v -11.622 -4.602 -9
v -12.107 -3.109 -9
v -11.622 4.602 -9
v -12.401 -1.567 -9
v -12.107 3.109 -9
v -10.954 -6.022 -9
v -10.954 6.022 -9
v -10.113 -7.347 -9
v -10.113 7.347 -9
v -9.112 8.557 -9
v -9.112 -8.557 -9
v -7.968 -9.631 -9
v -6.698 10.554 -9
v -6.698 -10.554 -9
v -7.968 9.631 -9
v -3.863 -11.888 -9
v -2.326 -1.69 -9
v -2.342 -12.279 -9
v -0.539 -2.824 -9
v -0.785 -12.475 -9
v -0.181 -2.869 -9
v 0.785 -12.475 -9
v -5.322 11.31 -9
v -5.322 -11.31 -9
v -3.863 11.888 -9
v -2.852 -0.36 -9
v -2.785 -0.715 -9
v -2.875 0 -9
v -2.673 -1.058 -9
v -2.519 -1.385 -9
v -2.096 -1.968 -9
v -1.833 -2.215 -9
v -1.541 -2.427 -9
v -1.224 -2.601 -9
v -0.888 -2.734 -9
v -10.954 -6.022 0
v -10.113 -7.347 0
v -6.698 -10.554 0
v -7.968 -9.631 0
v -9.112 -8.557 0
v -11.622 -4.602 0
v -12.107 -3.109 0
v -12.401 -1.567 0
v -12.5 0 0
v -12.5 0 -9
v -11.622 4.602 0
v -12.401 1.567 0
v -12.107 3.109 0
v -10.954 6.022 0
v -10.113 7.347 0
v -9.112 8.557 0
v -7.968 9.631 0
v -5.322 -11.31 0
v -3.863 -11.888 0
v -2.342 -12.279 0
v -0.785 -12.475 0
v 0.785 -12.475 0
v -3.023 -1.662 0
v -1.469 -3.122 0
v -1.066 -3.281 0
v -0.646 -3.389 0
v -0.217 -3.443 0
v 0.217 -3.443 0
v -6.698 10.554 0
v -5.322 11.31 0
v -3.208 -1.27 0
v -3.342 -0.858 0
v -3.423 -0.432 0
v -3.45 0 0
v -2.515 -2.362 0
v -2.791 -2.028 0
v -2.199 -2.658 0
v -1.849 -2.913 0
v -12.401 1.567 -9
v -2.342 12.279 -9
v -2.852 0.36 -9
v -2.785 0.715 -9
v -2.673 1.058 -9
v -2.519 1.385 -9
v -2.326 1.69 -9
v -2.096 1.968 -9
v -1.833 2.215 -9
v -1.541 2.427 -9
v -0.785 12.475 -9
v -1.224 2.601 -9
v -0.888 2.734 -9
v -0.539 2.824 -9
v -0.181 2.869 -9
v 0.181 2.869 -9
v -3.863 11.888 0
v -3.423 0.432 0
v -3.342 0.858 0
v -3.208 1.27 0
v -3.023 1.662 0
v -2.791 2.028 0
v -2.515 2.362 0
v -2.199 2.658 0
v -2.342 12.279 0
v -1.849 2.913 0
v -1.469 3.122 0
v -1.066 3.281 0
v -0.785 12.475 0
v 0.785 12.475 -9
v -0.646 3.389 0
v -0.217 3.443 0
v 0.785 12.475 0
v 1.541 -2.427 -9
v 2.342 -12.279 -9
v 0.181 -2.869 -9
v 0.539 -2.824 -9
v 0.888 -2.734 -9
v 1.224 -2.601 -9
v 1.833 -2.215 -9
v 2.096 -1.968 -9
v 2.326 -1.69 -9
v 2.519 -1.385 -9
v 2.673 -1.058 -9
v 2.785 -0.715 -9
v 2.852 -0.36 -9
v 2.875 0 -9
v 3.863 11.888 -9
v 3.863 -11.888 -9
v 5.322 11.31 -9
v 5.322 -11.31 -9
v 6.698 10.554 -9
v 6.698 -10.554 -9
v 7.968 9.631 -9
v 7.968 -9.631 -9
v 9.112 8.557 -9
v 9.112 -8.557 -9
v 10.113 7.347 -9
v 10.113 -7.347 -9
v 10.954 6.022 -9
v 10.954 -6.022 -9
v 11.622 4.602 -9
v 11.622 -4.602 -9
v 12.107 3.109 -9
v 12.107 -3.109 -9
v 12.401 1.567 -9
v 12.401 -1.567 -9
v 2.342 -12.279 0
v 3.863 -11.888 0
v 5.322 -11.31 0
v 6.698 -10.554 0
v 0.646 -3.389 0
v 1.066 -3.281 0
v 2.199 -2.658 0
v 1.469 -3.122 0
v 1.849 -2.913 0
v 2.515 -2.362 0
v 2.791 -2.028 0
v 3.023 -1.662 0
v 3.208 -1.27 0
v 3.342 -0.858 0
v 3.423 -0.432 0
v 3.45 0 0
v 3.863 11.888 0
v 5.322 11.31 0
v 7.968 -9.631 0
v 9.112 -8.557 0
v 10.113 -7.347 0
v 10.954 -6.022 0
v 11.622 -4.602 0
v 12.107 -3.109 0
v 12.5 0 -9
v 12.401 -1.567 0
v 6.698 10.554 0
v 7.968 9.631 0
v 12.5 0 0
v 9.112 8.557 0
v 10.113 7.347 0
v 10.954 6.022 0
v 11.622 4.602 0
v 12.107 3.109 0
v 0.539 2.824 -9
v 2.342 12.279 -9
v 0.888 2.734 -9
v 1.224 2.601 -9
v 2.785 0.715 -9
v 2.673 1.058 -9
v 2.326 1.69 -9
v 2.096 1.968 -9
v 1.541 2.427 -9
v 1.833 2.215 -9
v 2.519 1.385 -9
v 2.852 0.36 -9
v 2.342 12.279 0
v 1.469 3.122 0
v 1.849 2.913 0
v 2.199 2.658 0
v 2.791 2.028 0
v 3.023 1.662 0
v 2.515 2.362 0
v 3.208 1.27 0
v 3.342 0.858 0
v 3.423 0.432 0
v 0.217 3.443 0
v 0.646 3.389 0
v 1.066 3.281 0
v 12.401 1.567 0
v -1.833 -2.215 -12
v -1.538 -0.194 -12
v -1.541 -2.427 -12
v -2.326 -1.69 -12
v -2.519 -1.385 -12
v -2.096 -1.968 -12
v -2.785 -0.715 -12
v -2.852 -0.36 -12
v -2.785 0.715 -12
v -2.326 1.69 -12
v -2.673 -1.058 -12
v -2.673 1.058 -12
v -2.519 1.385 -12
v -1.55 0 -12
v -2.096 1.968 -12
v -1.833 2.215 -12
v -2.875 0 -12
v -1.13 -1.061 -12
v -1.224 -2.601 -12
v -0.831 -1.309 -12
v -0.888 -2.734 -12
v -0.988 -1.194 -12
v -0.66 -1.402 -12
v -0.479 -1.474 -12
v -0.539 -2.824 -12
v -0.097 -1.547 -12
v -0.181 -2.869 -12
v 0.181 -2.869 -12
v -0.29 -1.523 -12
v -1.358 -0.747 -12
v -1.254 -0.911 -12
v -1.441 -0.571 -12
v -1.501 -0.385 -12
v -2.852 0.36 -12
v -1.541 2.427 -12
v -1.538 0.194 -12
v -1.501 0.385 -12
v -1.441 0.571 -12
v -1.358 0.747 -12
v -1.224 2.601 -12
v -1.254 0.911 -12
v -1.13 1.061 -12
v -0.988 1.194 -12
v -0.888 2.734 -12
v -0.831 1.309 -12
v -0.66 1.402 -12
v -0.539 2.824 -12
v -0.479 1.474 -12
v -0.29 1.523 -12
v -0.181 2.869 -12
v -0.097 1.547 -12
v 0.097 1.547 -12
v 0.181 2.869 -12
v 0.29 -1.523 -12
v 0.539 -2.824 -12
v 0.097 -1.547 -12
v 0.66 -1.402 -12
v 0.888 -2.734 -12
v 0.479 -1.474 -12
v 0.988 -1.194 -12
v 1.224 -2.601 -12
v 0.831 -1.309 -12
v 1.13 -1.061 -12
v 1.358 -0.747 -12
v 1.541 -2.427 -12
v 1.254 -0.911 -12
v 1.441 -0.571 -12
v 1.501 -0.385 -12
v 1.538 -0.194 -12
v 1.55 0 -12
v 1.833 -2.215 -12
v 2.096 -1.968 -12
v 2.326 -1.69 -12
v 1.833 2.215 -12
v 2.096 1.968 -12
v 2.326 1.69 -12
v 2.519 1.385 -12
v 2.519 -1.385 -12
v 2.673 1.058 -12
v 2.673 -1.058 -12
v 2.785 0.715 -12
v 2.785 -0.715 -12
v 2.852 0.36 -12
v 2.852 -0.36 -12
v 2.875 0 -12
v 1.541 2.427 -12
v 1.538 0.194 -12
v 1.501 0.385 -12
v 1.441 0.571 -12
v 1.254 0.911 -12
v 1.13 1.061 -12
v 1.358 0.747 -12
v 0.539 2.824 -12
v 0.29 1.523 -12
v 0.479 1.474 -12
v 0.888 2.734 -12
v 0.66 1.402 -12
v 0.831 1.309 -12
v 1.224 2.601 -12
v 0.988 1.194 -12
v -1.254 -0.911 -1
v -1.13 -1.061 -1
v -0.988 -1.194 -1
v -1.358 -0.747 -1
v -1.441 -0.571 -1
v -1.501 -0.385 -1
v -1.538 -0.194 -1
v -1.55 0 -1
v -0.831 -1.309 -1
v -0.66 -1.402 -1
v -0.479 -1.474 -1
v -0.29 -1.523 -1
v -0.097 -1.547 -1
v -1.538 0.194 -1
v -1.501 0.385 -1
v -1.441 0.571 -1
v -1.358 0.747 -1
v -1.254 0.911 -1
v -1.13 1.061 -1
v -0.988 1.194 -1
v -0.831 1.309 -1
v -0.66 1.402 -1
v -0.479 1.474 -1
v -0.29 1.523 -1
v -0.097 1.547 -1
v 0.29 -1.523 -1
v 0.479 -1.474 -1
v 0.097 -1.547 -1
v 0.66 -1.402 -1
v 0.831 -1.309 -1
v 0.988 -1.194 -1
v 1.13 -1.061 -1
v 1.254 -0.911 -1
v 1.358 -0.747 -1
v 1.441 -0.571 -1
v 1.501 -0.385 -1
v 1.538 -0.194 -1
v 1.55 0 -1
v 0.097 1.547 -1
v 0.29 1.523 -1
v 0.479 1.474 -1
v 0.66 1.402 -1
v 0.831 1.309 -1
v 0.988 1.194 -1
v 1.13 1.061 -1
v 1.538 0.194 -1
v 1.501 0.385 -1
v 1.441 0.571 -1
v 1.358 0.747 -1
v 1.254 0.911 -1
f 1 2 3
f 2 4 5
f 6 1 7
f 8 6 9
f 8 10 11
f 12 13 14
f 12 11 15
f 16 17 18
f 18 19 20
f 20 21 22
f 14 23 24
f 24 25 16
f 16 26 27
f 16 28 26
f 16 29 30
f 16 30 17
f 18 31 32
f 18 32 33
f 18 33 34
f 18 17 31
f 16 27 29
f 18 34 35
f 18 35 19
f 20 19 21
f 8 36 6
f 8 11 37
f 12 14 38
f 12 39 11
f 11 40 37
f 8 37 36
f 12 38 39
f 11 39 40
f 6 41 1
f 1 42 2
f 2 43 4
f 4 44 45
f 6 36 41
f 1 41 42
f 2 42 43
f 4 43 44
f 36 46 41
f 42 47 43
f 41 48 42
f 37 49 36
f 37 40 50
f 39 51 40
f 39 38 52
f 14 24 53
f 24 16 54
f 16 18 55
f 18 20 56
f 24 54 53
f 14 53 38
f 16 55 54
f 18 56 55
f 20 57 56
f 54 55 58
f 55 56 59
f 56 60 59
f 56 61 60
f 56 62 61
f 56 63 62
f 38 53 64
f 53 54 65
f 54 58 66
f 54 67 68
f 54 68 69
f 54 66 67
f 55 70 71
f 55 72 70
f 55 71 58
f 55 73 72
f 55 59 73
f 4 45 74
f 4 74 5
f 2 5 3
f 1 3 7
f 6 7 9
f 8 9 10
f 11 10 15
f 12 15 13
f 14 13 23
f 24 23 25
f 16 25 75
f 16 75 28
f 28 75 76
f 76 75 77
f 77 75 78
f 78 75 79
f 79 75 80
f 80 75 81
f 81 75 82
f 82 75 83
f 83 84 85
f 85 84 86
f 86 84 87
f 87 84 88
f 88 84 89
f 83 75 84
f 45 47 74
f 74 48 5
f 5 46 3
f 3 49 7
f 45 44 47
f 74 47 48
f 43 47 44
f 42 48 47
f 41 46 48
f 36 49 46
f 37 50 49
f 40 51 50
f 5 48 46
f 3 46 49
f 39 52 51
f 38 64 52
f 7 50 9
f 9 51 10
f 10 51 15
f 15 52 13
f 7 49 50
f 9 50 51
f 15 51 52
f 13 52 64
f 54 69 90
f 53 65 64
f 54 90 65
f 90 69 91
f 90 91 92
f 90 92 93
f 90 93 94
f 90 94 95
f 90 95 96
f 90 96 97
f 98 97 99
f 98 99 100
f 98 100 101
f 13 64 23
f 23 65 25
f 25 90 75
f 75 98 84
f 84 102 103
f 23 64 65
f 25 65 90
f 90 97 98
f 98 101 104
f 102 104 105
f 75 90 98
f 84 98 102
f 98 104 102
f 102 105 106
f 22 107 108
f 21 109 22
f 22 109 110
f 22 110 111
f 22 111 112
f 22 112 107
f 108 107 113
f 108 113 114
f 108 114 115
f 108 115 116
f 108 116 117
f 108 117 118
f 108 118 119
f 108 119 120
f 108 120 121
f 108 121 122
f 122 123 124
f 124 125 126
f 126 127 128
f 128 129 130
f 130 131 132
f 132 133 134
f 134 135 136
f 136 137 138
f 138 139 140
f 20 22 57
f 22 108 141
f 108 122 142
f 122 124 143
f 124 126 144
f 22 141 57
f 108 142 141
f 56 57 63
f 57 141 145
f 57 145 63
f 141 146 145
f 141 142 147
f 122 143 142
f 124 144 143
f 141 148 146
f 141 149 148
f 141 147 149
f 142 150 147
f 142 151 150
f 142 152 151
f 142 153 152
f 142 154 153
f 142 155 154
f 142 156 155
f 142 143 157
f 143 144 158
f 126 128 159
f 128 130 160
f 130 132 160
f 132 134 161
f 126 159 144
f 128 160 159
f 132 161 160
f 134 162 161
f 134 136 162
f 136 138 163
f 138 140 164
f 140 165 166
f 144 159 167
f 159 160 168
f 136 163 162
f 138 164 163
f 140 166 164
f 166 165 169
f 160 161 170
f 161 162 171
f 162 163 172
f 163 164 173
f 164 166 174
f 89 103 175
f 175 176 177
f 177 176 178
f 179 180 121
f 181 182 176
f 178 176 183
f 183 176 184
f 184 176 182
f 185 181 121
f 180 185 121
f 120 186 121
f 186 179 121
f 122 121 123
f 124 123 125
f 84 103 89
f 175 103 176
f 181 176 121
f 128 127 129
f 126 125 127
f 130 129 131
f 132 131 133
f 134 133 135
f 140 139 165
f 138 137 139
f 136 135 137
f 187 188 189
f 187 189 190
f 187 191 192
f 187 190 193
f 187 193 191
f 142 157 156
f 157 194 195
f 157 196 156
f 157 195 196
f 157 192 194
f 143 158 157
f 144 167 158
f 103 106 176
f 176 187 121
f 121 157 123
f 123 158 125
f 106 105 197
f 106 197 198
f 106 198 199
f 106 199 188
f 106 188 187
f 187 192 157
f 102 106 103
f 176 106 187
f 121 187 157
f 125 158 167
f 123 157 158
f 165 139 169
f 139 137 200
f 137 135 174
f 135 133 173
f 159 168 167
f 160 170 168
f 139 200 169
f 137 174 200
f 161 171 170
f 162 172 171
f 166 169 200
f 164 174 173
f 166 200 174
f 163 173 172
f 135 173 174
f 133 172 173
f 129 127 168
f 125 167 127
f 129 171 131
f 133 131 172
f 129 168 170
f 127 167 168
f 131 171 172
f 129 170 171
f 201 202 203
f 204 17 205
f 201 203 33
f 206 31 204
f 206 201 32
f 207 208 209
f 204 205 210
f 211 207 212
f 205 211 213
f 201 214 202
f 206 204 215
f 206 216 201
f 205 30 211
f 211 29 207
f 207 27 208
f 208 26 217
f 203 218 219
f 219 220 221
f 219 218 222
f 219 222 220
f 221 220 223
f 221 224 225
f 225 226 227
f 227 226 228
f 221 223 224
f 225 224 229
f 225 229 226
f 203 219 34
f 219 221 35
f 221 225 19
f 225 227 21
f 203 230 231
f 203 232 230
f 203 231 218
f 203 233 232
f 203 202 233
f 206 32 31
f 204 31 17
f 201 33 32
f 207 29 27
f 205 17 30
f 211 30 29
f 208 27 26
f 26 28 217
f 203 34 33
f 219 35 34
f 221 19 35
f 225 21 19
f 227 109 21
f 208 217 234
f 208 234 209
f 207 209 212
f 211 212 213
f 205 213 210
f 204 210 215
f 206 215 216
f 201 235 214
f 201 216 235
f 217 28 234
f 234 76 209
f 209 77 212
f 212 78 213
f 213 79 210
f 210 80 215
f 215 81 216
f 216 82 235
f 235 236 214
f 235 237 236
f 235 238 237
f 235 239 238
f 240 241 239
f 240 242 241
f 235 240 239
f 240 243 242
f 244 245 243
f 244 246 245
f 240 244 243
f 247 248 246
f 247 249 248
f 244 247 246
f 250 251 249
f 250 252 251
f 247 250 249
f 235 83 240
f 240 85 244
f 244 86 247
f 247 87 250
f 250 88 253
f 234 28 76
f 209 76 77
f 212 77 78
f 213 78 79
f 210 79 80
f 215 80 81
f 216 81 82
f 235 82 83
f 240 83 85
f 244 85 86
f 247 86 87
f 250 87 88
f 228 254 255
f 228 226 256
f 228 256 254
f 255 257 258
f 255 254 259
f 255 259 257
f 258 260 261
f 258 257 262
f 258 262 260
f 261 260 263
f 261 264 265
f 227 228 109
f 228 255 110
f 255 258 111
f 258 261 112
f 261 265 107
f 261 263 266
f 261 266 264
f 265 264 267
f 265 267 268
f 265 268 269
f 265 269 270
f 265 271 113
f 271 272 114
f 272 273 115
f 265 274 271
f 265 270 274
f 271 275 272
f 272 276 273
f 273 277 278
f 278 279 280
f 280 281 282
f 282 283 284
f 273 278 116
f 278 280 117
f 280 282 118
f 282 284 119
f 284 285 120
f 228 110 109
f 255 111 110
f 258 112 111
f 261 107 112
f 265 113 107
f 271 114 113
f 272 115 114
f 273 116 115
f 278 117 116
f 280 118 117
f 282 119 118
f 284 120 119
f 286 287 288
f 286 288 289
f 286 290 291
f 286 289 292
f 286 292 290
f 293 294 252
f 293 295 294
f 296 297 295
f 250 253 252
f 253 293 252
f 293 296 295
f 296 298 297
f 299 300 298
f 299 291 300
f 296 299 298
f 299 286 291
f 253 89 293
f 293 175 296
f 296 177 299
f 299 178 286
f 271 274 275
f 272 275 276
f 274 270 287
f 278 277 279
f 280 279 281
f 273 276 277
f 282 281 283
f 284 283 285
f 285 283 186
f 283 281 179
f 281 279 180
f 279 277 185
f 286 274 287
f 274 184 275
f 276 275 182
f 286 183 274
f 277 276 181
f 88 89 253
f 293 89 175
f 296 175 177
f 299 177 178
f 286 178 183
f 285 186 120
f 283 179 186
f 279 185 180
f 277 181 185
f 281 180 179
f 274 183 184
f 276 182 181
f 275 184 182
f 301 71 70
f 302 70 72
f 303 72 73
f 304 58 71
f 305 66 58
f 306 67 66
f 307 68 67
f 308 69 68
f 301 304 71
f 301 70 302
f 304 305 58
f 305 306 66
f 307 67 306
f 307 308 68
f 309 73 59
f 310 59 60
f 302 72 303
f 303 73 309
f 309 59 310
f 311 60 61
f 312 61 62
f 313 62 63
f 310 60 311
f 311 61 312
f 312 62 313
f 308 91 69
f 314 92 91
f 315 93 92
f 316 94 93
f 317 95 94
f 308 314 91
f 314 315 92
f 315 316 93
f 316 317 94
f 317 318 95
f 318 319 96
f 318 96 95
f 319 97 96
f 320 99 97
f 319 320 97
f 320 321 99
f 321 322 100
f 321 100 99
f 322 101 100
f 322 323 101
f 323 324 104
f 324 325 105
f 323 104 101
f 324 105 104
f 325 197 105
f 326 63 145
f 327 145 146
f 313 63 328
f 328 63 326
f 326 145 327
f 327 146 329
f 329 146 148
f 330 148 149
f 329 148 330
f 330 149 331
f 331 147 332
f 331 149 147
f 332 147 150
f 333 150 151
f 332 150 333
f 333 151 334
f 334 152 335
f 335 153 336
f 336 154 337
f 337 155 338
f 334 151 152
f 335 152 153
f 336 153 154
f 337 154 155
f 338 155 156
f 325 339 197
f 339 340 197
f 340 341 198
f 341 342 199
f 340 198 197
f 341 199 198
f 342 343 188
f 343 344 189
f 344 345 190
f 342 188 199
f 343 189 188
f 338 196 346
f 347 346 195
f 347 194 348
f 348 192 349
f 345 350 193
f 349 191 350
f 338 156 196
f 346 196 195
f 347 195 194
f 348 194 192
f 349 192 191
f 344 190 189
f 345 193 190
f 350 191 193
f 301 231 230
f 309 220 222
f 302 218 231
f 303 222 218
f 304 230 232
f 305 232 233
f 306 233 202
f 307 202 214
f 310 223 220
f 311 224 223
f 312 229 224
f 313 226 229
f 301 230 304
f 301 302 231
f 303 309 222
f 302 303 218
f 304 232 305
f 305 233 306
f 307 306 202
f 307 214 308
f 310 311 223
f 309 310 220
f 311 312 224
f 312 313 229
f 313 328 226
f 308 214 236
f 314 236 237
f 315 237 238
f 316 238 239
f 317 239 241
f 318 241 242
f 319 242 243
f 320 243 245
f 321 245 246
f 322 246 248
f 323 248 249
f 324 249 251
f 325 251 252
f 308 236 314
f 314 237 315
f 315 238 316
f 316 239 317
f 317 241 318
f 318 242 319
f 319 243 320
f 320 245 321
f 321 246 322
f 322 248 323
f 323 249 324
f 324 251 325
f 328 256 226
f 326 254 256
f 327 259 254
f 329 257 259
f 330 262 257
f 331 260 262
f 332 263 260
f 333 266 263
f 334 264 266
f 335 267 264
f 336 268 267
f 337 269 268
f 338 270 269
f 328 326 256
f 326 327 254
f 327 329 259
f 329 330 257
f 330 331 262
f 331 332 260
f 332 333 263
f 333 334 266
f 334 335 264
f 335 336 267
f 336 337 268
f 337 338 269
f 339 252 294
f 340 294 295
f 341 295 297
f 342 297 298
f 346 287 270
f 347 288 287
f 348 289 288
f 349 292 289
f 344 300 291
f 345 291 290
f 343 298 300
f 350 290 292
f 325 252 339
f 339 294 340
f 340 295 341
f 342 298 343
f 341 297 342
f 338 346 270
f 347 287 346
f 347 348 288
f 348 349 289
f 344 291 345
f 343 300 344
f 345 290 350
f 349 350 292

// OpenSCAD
$fn = 50;

difference() {
	union() {
		translate(v = [0, 0, -9.0]) {
			cylinder(h = 9, r = 12.5);
		}
		#translate(v = [0, 0, -12.0]) {
			cylinder(h = 12, r = 2.875);
		}
	}
	union() {
		translate(v = [0, 0, 0]) {
			rotate(a = [0, 0, 0]) {
				difference() {
					union() {
						translate(v = [0, 0, -12.0]) {
							cylinder(h = 12, r = 1.25);
						}
						translate(v = [0, 0, -1.0]) {
							cylinder(h = 1.0, r1 = 1.55, r2 = 3.45);
						}
						translate(v = [0, 0, -12.0]) {
							cylinder(h = 12, r = 1.55);
						}
						translate(v = [0, 0, -12.0]) {
							cylinder(h = 12, r = 1.25);
						}
					}
					union();
				}
			}
		}
	}
}
